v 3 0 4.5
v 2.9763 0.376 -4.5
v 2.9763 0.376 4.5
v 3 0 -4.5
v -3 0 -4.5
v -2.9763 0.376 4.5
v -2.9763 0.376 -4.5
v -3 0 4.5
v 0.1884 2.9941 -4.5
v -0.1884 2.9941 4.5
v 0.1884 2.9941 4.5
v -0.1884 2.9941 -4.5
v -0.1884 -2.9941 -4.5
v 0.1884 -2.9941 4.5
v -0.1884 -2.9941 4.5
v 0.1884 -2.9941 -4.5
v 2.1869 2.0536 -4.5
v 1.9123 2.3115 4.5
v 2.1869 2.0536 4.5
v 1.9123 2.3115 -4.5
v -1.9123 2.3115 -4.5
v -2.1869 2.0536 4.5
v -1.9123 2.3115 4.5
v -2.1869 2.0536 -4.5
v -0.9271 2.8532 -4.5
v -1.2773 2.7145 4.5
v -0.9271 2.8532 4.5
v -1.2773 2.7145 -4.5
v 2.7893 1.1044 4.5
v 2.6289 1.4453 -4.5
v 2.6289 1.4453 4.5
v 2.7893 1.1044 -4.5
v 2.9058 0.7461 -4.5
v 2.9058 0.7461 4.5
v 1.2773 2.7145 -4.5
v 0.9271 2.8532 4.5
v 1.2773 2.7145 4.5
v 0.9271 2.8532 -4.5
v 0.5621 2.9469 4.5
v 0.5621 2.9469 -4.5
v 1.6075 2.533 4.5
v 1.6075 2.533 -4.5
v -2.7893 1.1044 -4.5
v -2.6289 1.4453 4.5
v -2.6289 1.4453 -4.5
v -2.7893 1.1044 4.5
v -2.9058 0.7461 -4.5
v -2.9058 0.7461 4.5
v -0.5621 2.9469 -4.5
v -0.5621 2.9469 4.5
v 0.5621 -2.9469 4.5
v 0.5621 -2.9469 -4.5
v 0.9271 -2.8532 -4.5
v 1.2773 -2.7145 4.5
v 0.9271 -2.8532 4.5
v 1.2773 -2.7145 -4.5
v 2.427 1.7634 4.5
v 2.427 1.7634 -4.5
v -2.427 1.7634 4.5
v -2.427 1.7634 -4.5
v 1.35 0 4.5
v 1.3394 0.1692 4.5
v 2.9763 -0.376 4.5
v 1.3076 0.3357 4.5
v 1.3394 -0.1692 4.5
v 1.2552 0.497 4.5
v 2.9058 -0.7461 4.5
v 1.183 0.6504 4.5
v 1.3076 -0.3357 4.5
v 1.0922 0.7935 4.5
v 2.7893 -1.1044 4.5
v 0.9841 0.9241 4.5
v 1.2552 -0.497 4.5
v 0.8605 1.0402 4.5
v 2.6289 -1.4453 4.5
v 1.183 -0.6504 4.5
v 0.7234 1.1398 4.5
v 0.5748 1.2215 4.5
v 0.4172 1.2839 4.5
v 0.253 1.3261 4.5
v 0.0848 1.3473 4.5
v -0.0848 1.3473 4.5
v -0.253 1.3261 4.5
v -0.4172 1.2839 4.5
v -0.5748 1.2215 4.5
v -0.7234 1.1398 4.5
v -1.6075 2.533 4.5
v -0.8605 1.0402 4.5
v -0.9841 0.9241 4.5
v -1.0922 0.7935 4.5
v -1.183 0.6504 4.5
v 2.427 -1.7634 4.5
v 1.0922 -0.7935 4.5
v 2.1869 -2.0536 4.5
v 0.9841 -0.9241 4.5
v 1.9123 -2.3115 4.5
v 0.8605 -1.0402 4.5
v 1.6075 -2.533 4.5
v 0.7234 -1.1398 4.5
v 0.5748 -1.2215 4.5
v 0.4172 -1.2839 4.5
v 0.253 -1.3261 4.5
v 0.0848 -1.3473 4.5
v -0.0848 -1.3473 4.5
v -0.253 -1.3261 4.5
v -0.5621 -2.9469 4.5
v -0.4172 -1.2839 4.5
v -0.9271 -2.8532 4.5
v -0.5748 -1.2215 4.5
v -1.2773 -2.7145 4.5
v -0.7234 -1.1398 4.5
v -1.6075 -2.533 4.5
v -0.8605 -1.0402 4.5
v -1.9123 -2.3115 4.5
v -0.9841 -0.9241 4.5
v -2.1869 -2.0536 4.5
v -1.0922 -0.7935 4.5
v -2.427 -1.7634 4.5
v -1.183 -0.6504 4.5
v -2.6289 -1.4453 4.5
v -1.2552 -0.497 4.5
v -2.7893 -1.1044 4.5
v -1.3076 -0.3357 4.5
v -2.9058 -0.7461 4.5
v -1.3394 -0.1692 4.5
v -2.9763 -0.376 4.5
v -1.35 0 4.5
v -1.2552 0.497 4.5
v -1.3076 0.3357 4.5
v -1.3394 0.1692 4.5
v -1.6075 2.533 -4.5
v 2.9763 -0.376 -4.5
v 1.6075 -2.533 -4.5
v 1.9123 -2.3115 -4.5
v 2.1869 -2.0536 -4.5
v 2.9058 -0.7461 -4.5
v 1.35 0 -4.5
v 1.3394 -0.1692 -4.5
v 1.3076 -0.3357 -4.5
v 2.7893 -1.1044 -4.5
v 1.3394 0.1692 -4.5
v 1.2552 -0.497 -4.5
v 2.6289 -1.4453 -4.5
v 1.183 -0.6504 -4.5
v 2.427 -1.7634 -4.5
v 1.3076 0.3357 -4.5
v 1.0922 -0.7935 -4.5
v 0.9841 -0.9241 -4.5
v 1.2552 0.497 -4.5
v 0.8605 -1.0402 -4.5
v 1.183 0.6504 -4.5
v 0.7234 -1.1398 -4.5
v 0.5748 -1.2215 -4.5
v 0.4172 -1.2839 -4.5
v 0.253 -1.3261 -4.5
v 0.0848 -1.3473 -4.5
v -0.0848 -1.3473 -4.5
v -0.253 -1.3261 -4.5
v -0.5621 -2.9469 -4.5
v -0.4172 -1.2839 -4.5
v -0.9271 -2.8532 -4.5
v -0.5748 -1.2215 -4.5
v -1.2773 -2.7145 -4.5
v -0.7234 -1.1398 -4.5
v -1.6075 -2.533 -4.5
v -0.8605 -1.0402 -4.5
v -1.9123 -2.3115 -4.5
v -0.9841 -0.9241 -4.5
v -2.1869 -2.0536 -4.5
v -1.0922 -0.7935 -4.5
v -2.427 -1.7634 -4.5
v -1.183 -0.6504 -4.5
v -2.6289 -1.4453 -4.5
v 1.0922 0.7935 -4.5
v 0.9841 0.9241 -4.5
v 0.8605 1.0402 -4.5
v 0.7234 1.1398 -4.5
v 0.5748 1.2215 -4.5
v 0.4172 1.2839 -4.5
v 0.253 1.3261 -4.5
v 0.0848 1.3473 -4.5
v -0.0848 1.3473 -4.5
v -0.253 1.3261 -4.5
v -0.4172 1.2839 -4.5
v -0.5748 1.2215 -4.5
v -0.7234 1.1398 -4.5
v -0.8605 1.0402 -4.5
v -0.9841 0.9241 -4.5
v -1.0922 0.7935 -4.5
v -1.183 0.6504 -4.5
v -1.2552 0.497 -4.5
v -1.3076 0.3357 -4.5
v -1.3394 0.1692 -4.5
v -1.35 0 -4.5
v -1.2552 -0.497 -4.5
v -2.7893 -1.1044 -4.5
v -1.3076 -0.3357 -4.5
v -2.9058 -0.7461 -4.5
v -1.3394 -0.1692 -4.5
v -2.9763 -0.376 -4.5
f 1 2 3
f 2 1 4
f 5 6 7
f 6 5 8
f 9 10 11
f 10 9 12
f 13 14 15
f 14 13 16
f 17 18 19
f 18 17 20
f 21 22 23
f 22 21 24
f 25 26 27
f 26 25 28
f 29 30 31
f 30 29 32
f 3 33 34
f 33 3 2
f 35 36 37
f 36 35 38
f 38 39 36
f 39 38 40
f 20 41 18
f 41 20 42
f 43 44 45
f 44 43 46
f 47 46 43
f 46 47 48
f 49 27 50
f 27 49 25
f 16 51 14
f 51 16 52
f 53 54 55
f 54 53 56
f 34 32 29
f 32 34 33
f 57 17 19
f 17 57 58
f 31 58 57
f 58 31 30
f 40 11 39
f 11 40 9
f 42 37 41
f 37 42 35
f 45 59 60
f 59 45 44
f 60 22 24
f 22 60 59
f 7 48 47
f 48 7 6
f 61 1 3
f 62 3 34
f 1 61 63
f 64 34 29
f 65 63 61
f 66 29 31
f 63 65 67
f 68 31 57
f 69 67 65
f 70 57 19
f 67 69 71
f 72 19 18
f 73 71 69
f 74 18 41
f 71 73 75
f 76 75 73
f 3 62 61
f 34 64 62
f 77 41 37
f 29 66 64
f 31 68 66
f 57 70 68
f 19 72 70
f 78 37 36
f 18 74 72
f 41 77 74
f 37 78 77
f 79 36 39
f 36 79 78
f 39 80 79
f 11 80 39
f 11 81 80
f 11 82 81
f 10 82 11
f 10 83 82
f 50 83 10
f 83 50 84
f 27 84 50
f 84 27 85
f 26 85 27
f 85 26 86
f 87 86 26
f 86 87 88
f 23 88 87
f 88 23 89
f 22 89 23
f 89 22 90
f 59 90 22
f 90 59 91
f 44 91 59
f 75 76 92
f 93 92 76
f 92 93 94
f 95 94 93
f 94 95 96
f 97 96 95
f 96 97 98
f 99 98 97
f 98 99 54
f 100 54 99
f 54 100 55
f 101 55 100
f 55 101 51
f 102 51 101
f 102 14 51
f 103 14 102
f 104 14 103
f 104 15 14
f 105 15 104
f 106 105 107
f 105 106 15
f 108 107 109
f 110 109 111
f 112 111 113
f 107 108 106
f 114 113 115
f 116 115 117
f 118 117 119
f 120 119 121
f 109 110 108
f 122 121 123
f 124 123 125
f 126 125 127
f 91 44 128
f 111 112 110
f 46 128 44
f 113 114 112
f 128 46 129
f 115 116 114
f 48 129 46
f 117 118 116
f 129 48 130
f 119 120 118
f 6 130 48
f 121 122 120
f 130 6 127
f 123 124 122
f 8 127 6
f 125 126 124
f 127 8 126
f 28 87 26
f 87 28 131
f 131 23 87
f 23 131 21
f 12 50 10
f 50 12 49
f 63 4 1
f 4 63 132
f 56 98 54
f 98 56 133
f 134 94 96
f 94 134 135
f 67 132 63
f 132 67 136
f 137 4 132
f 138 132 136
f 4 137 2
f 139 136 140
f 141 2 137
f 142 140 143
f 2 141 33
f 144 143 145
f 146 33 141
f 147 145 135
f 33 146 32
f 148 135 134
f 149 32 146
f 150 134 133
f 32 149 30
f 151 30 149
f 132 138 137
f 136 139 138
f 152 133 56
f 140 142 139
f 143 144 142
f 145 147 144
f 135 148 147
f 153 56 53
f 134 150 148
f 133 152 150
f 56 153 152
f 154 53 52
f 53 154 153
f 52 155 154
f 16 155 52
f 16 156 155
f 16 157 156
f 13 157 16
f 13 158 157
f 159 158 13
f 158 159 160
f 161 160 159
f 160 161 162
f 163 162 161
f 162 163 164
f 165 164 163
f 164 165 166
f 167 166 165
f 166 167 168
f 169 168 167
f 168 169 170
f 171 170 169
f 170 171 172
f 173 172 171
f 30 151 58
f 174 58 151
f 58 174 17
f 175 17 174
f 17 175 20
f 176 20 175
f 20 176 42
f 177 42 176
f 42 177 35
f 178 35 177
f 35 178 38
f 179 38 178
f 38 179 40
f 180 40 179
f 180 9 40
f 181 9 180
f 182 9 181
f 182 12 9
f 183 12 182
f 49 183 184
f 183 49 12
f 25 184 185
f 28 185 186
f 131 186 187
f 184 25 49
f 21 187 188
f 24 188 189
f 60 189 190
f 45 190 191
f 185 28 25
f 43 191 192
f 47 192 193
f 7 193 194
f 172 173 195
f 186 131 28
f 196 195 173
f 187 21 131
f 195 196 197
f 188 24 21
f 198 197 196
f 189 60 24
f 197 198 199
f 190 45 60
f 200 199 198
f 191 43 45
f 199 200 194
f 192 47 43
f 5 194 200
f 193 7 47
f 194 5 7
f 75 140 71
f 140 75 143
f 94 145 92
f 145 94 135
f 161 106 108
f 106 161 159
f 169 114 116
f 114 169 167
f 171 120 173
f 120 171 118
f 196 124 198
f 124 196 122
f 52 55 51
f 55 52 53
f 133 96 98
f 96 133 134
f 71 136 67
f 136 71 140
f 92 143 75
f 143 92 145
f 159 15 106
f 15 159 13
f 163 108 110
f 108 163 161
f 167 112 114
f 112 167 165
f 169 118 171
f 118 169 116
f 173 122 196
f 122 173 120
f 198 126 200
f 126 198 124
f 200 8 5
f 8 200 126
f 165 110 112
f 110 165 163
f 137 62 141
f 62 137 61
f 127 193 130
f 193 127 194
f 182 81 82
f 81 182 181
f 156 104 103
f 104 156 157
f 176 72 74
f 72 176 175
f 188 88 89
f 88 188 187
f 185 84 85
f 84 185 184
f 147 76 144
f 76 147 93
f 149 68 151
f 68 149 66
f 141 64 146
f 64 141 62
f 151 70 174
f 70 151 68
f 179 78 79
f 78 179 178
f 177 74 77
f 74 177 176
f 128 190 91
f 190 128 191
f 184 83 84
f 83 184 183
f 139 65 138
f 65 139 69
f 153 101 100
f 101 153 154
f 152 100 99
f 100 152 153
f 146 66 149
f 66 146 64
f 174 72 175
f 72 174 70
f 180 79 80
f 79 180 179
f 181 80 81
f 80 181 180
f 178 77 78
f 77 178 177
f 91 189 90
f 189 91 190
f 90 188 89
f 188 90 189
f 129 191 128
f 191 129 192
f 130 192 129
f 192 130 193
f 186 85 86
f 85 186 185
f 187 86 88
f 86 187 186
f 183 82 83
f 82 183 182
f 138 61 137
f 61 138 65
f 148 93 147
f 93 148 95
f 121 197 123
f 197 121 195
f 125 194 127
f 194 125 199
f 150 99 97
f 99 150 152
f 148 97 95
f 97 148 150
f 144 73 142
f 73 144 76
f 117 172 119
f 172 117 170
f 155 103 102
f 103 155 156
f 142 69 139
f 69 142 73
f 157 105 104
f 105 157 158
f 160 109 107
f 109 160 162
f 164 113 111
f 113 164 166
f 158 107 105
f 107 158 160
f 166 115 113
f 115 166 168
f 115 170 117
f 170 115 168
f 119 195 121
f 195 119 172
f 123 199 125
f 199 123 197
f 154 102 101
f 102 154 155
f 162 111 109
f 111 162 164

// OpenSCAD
$fn = 50;


difference() {
	union() {
		translate(v = [0, 0, -4.5000000000]) {
			cylinder(h = 9, r = 3.0000000000);
		}
	}
	union() {
		translate(v = [0, 0, -100.0000000000]) {
			cylinder(h = 200, r = 1.3500000000);
		}
	}
}
